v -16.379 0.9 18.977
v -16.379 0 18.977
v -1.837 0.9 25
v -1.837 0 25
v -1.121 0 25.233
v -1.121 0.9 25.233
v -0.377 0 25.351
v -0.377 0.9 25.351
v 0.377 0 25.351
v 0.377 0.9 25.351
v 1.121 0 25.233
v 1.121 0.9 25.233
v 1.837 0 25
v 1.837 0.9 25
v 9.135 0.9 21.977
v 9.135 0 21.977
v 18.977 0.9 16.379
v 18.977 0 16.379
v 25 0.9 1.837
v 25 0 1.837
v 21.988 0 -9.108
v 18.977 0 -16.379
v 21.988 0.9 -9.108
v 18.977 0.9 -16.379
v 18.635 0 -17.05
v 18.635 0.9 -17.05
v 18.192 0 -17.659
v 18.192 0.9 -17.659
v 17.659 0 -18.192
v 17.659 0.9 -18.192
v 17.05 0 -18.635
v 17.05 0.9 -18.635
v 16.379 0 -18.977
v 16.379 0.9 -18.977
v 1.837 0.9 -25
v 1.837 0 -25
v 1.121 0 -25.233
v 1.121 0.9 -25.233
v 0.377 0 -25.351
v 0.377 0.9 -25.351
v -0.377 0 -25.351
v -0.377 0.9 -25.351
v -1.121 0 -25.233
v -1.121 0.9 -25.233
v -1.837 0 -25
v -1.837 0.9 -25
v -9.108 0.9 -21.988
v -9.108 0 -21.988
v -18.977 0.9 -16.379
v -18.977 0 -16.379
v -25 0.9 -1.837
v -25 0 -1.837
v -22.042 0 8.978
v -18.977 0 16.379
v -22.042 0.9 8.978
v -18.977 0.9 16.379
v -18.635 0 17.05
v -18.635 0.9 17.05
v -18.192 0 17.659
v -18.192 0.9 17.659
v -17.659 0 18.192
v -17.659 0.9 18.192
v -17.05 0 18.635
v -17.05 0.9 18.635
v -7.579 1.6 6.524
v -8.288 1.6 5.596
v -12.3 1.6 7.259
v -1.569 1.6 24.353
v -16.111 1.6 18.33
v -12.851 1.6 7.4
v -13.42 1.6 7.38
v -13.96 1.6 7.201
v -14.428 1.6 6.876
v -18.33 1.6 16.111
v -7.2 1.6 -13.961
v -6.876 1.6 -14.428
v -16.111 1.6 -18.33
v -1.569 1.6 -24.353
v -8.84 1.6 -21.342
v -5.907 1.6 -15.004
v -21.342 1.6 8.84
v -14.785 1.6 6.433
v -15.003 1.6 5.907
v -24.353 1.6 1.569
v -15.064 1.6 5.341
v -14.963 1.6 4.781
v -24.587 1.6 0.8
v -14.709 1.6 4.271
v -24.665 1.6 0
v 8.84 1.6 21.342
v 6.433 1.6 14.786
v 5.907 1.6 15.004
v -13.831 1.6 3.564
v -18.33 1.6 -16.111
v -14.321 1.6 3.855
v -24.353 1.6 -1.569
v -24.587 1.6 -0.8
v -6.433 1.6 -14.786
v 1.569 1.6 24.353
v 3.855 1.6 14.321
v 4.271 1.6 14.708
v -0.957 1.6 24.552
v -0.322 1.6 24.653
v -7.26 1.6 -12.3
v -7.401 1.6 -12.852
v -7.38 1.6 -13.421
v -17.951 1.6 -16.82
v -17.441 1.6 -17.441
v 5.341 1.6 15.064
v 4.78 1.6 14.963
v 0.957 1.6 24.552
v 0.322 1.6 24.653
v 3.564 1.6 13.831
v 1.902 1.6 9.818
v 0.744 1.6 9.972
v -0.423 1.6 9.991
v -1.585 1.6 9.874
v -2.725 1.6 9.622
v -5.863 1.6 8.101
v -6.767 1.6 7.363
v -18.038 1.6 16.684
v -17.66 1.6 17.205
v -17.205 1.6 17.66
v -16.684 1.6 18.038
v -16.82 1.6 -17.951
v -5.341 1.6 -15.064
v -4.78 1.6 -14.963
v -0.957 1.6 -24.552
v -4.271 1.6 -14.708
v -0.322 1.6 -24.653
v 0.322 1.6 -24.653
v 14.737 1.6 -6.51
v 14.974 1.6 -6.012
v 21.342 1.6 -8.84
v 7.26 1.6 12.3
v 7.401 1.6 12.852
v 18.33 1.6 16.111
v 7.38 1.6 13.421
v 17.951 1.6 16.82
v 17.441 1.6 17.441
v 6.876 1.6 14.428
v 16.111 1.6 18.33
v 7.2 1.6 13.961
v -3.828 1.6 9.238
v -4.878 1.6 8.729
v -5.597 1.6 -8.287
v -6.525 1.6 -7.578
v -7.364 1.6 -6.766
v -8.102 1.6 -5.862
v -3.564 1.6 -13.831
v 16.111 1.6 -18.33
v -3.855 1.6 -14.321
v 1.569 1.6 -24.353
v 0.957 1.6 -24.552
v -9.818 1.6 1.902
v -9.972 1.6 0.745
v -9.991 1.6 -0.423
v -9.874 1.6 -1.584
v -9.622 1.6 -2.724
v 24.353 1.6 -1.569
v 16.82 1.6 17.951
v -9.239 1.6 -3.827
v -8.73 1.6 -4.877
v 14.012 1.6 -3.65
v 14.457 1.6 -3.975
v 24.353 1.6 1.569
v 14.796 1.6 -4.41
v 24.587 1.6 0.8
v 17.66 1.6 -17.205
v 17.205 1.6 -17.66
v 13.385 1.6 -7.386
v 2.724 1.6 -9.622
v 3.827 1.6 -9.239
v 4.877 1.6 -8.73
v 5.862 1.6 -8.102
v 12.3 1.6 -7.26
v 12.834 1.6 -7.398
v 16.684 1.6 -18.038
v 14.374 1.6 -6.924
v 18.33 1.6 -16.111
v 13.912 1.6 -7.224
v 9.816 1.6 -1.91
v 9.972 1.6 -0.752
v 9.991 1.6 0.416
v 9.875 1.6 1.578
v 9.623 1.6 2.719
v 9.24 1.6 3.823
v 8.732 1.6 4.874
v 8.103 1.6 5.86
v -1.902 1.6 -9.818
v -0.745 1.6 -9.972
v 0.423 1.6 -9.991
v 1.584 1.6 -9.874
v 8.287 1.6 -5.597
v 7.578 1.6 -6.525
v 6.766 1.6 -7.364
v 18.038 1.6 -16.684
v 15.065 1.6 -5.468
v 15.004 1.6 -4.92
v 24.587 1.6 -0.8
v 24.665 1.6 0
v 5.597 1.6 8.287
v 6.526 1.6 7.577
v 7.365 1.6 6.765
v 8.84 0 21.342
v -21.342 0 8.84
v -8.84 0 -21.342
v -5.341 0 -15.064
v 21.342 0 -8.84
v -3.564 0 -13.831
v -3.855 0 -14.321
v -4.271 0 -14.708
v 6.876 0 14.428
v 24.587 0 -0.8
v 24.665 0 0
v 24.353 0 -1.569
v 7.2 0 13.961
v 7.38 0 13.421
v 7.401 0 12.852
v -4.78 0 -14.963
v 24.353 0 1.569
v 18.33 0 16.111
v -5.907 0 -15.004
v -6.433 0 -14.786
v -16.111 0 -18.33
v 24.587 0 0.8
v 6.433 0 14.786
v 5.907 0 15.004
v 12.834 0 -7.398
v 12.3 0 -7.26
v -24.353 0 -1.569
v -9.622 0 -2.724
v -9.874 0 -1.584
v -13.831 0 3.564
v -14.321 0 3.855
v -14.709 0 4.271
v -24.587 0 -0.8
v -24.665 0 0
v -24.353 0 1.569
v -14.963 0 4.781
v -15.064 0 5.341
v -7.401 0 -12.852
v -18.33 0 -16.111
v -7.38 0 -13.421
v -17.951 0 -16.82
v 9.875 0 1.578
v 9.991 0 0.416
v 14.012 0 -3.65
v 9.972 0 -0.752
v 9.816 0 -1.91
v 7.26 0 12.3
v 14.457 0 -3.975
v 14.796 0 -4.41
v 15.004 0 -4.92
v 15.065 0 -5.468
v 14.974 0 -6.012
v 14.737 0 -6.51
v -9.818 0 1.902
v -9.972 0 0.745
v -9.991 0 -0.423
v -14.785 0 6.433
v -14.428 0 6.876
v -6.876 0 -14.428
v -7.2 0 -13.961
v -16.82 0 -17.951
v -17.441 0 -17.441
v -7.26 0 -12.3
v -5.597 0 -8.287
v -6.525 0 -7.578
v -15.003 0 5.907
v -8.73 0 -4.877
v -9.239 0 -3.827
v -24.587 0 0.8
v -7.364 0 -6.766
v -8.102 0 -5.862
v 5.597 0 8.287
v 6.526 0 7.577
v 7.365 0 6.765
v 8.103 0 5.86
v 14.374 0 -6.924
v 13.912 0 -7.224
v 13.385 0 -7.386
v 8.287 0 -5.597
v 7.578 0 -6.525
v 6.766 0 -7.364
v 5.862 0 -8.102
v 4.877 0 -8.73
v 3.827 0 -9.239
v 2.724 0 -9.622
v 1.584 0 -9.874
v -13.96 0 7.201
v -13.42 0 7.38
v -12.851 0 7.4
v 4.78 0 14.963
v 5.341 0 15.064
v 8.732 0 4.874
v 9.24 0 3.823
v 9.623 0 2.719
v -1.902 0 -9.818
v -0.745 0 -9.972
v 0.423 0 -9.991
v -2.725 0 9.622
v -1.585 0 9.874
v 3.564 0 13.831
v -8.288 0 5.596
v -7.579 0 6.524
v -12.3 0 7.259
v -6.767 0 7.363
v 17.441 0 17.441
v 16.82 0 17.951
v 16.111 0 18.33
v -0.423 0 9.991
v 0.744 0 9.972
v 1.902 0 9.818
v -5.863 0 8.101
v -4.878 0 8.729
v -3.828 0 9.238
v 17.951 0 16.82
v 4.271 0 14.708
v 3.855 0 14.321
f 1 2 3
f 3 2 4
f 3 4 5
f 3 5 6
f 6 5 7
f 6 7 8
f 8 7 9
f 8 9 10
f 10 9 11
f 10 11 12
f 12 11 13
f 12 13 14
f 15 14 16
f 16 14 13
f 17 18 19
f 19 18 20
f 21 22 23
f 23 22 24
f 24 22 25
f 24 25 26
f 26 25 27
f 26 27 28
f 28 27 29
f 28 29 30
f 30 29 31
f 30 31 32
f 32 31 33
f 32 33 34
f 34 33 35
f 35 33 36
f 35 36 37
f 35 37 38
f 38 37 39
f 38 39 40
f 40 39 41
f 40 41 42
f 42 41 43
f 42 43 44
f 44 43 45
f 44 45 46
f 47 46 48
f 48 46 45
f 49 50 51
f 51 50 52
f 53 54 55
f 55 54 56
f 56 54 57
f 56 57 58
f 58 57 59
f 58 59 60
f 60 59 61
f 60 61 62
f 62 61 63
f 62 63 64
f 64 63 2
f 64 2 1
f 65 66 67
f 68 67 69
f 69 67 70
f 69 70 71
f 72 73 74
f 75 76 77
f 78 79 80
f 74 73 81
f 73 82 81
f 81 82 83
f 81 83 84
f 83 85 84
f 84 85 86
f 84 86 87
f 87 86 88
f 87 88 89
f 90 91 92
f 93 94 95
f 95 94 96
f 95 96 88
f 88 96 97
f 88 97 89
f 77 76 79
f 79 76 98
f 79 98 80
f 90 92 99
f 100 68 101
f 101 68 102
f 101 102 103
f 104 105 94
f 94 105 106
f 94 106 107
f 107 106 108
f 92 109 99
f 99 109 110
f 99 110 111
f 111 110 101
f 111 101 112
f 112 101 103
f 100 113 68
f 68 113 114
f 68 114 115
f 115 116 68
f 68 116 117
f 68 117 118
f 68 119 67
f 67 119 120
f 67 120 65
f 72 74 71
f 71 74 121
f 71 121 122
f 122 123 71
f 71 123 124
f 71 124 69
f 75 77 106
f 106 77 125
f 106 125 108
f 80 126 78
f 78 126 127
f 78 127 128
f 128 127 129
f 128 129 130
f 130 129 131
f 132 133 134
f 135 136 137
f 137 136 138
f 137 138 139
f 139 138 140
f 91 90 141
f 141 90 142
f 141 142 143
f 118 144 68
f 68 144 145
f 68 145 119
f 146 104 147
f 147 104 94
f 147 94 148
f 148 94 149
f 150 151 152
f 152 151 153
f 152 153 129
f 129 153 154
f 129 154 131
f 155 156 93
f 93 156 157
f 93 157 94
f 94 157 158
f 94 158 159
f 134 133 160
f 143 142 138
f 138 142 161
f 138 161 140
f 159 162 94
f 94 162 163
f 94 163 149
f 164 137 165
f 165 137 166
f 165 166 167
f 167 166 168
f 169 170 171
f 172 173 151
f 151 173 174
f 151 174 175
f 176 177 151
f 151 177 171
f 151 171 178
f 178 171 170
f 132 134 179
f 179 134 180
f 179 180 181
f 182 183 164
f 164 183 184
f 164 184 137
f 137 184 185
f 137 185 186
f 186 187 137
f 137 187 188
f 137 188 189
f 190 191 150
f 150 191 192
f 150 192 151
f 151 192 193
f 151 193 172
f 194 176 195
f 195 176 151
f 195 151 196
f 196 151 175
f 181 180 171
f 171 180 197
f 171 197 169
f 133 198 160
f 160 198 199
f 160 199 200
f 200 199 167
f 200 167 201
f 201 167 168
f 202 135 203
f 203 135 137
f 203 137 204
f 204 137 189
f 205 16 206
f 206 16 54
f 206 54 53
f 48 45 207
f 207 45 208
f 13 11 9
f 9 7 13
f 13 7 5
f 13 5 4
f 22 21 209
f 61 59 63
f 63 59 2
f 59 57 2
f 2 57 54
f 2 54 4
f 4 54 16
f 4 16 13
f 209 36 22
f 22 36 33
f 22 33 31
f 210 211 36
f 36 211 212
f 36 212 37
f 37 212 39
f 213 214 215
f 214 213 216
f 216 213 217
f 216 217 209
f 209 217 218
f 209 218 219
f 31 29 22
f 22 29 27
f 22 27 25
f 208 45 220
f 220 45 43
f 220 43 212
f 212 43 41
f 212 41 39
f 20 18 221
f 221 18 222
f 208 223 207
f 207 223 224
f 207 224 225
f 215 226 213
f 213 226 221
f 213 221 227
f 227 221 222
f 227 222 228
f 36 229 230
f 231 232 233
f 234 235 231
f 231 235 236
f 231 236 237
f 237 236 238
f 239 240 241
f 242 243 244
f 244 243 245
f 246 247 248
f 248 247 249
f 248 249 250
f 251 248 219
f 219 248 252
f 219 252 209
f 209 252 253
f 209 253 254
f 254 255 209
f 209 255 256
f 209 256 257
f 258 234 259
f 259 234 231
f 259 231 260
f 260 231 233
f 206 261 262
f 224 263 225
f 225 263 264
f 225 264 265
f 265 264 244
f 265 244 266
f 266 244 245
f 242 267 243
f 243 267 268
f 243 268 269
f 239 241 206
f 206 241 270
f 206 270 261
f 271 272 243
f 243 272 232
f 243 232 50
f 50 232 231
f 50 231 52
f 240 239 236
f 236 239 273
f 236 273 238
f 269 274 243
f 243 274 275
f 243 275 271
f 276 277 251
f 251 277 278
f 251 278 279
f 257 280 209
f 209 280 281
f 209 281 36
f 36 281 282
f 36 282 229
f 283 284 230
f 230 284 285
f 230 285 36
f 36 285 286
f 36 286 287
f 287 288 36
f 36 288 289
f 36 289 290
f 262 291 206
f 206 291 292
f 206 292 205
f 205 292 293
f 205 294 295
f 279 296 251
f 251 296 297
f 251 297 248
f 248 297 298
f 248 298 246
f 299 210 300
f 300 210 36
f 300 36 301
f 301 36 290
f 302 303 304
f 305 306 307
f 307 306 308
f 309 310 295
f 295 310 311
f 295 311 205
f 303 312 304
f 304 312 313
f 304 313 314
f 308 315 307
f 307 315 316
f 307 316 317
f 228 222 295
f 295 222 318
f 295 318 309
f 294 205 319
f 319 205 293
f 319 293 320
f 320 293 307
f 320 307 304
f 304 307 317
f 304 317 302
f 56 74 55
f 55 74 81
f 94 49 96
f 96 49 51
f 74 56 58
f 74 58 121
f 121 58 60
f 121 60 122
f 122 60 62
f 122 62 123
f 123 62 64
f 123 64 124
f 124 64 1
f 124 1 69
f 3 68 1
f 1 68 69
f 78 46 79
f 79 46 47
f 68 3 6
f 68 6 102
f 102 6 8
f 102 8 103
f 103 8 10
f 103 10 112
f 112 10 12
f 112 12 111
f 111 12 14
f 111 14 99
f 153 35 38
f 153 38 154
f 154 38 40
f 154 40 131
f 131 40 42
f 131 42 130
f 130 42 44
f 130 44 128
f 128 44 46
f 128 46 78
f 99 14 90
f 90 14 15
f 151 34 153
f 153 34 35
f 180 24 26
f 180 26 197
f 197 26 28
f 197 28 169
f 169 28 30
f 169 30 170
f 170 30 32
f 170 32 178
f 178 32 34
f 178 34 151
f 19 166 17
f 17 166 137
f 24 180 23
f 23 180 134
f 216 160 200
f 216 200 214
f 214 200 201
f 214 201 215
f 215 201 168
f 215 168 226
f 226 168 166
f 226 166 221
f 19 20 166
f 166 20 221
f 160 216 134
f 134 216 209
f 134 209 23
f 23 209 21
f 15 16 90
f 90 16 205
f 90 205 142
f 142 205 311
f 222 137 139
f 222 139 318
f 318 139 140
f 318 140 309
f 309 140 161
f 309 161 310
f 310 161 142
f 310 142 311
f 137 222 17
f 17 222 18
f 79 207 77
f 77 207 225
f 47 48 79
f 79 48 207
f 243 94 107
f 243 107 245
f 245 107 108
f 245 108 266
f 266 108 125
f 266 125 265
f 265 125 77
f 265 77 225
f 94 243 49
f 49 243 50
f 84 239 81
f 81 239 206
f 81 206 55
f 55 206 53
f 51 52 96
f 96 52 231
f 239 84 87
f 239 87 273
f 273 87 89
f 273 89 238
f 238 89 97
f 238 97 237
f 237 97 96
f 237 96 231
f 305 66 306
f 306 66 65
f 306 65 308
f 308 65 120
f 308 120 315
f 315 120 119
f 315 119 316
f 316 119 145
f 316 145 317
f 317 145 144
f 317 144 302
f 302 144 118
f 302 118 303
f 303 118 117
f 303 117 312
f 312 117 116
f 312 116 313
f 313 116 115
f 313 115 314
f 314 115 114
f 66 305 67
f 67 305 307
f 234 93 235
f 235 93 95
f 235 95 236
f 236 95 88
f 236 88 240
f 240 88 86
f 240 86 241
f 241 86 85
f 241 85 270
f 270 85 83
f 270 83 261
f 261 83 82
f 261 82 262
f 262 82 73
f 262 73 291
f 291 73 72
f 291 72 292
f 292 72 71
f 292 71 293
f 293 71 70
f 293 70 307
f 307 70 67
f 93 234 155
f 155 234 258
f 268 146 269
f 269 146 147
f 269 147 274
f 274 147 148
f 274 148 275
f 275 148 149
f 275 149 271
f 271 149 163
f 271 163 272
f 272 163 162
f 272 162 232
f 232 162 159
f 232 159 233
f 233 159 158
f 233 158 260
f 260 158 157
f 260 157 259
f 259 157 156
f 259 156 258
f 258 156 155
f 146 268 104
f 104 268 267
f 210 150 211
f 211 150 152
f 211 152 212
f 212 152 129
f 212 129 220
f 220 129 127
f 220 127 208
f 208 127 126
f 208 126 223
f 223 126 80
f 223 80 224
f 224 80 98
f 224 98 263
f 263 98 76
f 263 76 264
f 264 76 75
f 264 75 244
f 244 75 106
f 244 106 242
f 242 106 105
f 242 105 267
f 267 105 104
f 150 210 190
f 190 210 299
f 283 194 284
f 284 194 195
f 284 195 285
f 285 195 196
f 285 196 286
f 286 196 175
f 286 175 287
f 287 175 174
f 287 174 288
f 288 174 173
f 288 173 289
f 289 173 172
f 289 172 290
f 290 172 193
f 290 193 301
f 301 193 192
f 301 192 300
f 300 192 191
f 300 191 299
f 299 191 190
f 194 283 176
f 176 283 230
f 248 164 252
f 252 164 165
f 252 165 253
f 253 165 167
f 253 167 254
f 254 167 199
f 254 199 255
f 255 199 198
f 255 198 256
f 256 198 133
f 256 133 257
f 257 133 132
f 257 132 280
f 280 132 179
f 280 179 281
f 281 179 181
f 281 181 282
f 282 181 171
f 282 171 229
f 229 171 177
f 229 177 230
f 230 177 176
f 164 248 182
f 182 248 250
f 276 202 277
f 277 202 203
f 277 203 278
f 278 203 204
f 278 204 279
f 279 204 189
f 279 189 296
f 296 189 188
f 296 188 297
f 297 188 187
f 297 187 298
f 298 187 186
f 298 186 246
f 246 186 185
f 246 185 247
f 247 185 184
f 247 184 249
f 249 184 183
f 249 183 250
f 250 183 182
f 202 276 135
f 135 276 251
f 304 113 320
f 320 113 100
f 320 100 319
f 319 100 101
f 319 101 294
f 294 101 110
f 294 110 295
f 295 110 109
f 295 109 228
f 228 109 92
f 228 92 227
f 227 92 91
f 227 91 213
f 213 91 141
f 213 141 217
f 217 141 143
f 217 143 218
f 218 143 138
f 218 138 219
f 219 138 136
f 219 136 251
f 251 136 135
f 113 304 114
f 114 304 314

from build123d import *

# Parameters (mm, degrees)
BOSS_EXTRUDE1_DEPTH = 1.6
CHAMFER1_SIZE       = 0.7
CUT_EXTRUDE1_DEPTH  = 10
CUT_EXTRUDE2_DEPTH  = 10


with BuildPart() as part:
    # Sketch1 → Boss-Extrude1 (new body)
    with BuildSketch(Plane(origin=(0, 0, 0), x_dir=(1, 0, 0), z_dir=(0, 1, 0))):
        with BuildLine():
            Line((-9.10786569, -21.988332874), (-1.836880475, -25.000073562))
            ThreePointArc((-1.836880475, -25.000073562), (0, -25.365451806), (1.836880475, -25.000073562))
            Line((1.836880475, -25.000073562), (16.378850905, -18.976592186))
            ThreePointArc((16.378850905, -18.976592186), (17.93608298, -17.93608298), (18.976592186, -16.378850905))
            Line((18.976592186, -16.378850905), (25.000073562, -1.836880475))
            ThreePointArc((25.000073562, -1.836880475), (25.365451806, 0), (25.000073562, 1.836880475))
            Line((25.000073562, 1.836880475), (18.976592186, 16.378850905))
            ThreePointArc((18.976592186, 16.378850905), (17.93608298, 17.93608298), (16.378850905, 18.976592186))
            Line((16.378850905, 18.976592186), (1.836880475, 25.000073562))
            ThreePointArc((1.836880475, 25.000073562), (0, 25.365451806), (-1.836880475, 25.000073562))
            Line((-1.836880475, 25.000073562), (-16.378850905, 18.976592186))
            ThreePointArc((-16.378850905, 18.976592186), (-17.93608298, 17.93608298), (-18.976592186, 16.378850905))
            Line((-18.976592186, 16.378850905), (-25.000073562, 1.836880475))
            ThreePointArc((-25.000073562, 1.836880475), (-25.365451806, 0), (-25.000073562, -1.836880475))
            Line((-25.000073562, -1.836880475), (-18.976592186, -16.378850905))
            ThreePointArc((-18.976592186, -16.378850905), (-17.93608298, -17.93608298), (-16.378850905, -18.976592186))
            Line((-16.378850905, -18.976592186), (-9.10786569, -21.988332874))
        make_face()
    extrude(amount=BOSS_EXTRUDE1_DEPTH)

    # Chamfer1
    chamfer1_edges = [part.edges().sort_by_distance(p)[0] for p in [
        (0, 1.6, 25.365451806),
        (9.10786569, 1.6, 21.988332874),
        (17.93608298, 1.6, 17.93608298),
        (21.988332874, 1.6, 9.10786569),
        (25.365451806, 1.6, 0),
        (21.988332874, 1.6, -9.10786569),
        (17.93608298, 1.6, -17.93608298),
        (9.10786569, 1.6, -21.988332874),
        (0, 1.6, -25.365451806),
        (-9.10786569, 1.6, -21.988332874),
        (-9.10786569, 1.6, 21.988332874),
        (-17.93608298, 1.6, -17.93608298),
        (-21.988332874, 1.6, -9.10786569),
        (-25.365451806, 1.6, 0),
        (-21.988332874, 1.6, 9.10786569),
        (-17.93608298, 1.6, 17.93608298),
    ]]
    chamfer(chamfer1_edges, length=CHAMFER1_SIZE)

    # Sketch3 → Cut-Extrude1 (cut)
    with BuildSketch(Plane(origin=(0, 1.6, 0), x_dir=(1, 0, 0), z_dir=(0, 1, 0))):
        with BuildLine():
            Line((11.184254927, -26.400355762), (8.839987288, -21.341617201))
            Line((8.839987288, -21.341617201), (16.110972503, -18.329876513))
            ThreePointArc((16.110972503, -18.329876513), (17.441108233, -17.441108233), (18.329876513, -16.110972503))
            Line((18.329876513, -16.110972503), (20.565451806, -17.036978108))
            Line((20.565451806, -17.036978108), (27.482751604, -2.865239392))
            Line((27.482751604, -2.865239392), (24.353357889, -1.569002073))
            ThreePointArc((24.353357889, -1.569002073), (24.665451806, 0), (24.353357889, 1.569002073))
            Line((24.353357889, 1.569002073), (21.341617201, 8.839987288))
            Line((21.341617201, 8.839987288), (23.946233788, 9.918854803))
            Line((23.946233788, 9.918854803), (36.794025395, -9.102301388))
            Line((36.794025395, -9.102301388), (11.184254927, -26.400355762))
        make_face()
        with BuildLine():
            Line((-8.839987288, 21.341617201), (-16.110972503, 18.329876513))
            ThreePointArc((-16.110972503, 18.329876513), (-17.441108233, 17.441108233), (-18.329876513, 16.110972503))
            Line((-18.329876513, 16.110972503), (-20.565451806, 17.036978108))
            Line((-20.565451806, 17.036978108), (-26.15363219, 2.314700104))
            Line((-26.15363219, 2.314700104), (-24.353357889, 1.569002073))
            ThreePointArc((-24.353357889, 1.569002073), (-24.665451806, 0), (-24.353357889, -1.569002073))
            Line((-24.353357889, -1.569002073), (-21.341617201, -8.839987288))
            Line((-21.341617201, -8.839987288), (-32.211044195, -10.986258031))
            Line((-32.211044195, -10.986258031), (-37.928163695, 17.967131565))
            Line((-37.928163695, 17.967131565), (-9.747163954, 23.531735412))
            Line((-9.747163954, 23.531735412), (-8.839987288, 21.341617201))
        make_face()
    extrude(amount=-CUT_EXTRUDE1_DEPTH, mode=Mode.SUBTRACT)

    # Sketch4 → Cut-Extrude2 (cut)
    with BuildSketch(Plane(origin=(0, 1.6, 0), x_dir=(1, 0, 0), z_dir=(0, 1, 0))):
        with BuildLine():
            Line((-7.259720066, 12.300262784), (-5.597275634, 8.286766889))
            ThreePointArc((-5.597275634, 8.286766889), (-9.238795325, 3.826834324), (-9.817500619, -1.901757504))
            Line((-9.817500619, -1.901757504), (-13.830996513, -3.564201936))
            ThreePointArc((-13.830996513, -3.564201936), (-14.913253575, -6.177654038), (-12.299610465, -7.259449732))
            Line((-12.299610465, -7.259449732), (-8.287642823, -5.595978595))
            ThreePointArc((-8.287642823, -5.595978595), (-3.827557299, -9.238495826), (1.901757504, -9.817500619))
            Line((1.901757504, -9.817500619), (3.564201936, -13.830996513))
            ThreePointArc((3.564201936, -13.830996513), (6.177327866, -14.913388714), (7.259720066, -12.300262784))
            Line((7.259720066, -12.300262784), (5.597275634, -8.286766889))
            ThreePointArc((5.597275634, -8.286766889), (9.240445033, -3.822849145), (9.815856456, 1.910225649))
            Line((9.815856456, 1.910225649), (14.012213043, 3.650149468))
            ThreePointArc((14.012213043, 3.650149468), (14.872687986, 6.269014189), (12.300262784, 7.259720066))
            Line((12.300262784, 7.259720066), (8.286766889, 5.597275634))
            ThreePointArc((8.286766889, 5.597275634), (3.826834324, 9.238795325), (-1.901757504, 9.817500619))
            Line((-1.901757504, 9.817500619), (-3.564201936, 13.830996513))
            ThreePointArc((-3.564201936, 13.830996513), (-6.177327866, 14.913388714), (-7.259720066, 12.300262784))
        make_face()
    extrude(amount=-CUT_EXTRUDE2_DEPTH, mode=Mode.SUBTRACT)


solid = part.part
